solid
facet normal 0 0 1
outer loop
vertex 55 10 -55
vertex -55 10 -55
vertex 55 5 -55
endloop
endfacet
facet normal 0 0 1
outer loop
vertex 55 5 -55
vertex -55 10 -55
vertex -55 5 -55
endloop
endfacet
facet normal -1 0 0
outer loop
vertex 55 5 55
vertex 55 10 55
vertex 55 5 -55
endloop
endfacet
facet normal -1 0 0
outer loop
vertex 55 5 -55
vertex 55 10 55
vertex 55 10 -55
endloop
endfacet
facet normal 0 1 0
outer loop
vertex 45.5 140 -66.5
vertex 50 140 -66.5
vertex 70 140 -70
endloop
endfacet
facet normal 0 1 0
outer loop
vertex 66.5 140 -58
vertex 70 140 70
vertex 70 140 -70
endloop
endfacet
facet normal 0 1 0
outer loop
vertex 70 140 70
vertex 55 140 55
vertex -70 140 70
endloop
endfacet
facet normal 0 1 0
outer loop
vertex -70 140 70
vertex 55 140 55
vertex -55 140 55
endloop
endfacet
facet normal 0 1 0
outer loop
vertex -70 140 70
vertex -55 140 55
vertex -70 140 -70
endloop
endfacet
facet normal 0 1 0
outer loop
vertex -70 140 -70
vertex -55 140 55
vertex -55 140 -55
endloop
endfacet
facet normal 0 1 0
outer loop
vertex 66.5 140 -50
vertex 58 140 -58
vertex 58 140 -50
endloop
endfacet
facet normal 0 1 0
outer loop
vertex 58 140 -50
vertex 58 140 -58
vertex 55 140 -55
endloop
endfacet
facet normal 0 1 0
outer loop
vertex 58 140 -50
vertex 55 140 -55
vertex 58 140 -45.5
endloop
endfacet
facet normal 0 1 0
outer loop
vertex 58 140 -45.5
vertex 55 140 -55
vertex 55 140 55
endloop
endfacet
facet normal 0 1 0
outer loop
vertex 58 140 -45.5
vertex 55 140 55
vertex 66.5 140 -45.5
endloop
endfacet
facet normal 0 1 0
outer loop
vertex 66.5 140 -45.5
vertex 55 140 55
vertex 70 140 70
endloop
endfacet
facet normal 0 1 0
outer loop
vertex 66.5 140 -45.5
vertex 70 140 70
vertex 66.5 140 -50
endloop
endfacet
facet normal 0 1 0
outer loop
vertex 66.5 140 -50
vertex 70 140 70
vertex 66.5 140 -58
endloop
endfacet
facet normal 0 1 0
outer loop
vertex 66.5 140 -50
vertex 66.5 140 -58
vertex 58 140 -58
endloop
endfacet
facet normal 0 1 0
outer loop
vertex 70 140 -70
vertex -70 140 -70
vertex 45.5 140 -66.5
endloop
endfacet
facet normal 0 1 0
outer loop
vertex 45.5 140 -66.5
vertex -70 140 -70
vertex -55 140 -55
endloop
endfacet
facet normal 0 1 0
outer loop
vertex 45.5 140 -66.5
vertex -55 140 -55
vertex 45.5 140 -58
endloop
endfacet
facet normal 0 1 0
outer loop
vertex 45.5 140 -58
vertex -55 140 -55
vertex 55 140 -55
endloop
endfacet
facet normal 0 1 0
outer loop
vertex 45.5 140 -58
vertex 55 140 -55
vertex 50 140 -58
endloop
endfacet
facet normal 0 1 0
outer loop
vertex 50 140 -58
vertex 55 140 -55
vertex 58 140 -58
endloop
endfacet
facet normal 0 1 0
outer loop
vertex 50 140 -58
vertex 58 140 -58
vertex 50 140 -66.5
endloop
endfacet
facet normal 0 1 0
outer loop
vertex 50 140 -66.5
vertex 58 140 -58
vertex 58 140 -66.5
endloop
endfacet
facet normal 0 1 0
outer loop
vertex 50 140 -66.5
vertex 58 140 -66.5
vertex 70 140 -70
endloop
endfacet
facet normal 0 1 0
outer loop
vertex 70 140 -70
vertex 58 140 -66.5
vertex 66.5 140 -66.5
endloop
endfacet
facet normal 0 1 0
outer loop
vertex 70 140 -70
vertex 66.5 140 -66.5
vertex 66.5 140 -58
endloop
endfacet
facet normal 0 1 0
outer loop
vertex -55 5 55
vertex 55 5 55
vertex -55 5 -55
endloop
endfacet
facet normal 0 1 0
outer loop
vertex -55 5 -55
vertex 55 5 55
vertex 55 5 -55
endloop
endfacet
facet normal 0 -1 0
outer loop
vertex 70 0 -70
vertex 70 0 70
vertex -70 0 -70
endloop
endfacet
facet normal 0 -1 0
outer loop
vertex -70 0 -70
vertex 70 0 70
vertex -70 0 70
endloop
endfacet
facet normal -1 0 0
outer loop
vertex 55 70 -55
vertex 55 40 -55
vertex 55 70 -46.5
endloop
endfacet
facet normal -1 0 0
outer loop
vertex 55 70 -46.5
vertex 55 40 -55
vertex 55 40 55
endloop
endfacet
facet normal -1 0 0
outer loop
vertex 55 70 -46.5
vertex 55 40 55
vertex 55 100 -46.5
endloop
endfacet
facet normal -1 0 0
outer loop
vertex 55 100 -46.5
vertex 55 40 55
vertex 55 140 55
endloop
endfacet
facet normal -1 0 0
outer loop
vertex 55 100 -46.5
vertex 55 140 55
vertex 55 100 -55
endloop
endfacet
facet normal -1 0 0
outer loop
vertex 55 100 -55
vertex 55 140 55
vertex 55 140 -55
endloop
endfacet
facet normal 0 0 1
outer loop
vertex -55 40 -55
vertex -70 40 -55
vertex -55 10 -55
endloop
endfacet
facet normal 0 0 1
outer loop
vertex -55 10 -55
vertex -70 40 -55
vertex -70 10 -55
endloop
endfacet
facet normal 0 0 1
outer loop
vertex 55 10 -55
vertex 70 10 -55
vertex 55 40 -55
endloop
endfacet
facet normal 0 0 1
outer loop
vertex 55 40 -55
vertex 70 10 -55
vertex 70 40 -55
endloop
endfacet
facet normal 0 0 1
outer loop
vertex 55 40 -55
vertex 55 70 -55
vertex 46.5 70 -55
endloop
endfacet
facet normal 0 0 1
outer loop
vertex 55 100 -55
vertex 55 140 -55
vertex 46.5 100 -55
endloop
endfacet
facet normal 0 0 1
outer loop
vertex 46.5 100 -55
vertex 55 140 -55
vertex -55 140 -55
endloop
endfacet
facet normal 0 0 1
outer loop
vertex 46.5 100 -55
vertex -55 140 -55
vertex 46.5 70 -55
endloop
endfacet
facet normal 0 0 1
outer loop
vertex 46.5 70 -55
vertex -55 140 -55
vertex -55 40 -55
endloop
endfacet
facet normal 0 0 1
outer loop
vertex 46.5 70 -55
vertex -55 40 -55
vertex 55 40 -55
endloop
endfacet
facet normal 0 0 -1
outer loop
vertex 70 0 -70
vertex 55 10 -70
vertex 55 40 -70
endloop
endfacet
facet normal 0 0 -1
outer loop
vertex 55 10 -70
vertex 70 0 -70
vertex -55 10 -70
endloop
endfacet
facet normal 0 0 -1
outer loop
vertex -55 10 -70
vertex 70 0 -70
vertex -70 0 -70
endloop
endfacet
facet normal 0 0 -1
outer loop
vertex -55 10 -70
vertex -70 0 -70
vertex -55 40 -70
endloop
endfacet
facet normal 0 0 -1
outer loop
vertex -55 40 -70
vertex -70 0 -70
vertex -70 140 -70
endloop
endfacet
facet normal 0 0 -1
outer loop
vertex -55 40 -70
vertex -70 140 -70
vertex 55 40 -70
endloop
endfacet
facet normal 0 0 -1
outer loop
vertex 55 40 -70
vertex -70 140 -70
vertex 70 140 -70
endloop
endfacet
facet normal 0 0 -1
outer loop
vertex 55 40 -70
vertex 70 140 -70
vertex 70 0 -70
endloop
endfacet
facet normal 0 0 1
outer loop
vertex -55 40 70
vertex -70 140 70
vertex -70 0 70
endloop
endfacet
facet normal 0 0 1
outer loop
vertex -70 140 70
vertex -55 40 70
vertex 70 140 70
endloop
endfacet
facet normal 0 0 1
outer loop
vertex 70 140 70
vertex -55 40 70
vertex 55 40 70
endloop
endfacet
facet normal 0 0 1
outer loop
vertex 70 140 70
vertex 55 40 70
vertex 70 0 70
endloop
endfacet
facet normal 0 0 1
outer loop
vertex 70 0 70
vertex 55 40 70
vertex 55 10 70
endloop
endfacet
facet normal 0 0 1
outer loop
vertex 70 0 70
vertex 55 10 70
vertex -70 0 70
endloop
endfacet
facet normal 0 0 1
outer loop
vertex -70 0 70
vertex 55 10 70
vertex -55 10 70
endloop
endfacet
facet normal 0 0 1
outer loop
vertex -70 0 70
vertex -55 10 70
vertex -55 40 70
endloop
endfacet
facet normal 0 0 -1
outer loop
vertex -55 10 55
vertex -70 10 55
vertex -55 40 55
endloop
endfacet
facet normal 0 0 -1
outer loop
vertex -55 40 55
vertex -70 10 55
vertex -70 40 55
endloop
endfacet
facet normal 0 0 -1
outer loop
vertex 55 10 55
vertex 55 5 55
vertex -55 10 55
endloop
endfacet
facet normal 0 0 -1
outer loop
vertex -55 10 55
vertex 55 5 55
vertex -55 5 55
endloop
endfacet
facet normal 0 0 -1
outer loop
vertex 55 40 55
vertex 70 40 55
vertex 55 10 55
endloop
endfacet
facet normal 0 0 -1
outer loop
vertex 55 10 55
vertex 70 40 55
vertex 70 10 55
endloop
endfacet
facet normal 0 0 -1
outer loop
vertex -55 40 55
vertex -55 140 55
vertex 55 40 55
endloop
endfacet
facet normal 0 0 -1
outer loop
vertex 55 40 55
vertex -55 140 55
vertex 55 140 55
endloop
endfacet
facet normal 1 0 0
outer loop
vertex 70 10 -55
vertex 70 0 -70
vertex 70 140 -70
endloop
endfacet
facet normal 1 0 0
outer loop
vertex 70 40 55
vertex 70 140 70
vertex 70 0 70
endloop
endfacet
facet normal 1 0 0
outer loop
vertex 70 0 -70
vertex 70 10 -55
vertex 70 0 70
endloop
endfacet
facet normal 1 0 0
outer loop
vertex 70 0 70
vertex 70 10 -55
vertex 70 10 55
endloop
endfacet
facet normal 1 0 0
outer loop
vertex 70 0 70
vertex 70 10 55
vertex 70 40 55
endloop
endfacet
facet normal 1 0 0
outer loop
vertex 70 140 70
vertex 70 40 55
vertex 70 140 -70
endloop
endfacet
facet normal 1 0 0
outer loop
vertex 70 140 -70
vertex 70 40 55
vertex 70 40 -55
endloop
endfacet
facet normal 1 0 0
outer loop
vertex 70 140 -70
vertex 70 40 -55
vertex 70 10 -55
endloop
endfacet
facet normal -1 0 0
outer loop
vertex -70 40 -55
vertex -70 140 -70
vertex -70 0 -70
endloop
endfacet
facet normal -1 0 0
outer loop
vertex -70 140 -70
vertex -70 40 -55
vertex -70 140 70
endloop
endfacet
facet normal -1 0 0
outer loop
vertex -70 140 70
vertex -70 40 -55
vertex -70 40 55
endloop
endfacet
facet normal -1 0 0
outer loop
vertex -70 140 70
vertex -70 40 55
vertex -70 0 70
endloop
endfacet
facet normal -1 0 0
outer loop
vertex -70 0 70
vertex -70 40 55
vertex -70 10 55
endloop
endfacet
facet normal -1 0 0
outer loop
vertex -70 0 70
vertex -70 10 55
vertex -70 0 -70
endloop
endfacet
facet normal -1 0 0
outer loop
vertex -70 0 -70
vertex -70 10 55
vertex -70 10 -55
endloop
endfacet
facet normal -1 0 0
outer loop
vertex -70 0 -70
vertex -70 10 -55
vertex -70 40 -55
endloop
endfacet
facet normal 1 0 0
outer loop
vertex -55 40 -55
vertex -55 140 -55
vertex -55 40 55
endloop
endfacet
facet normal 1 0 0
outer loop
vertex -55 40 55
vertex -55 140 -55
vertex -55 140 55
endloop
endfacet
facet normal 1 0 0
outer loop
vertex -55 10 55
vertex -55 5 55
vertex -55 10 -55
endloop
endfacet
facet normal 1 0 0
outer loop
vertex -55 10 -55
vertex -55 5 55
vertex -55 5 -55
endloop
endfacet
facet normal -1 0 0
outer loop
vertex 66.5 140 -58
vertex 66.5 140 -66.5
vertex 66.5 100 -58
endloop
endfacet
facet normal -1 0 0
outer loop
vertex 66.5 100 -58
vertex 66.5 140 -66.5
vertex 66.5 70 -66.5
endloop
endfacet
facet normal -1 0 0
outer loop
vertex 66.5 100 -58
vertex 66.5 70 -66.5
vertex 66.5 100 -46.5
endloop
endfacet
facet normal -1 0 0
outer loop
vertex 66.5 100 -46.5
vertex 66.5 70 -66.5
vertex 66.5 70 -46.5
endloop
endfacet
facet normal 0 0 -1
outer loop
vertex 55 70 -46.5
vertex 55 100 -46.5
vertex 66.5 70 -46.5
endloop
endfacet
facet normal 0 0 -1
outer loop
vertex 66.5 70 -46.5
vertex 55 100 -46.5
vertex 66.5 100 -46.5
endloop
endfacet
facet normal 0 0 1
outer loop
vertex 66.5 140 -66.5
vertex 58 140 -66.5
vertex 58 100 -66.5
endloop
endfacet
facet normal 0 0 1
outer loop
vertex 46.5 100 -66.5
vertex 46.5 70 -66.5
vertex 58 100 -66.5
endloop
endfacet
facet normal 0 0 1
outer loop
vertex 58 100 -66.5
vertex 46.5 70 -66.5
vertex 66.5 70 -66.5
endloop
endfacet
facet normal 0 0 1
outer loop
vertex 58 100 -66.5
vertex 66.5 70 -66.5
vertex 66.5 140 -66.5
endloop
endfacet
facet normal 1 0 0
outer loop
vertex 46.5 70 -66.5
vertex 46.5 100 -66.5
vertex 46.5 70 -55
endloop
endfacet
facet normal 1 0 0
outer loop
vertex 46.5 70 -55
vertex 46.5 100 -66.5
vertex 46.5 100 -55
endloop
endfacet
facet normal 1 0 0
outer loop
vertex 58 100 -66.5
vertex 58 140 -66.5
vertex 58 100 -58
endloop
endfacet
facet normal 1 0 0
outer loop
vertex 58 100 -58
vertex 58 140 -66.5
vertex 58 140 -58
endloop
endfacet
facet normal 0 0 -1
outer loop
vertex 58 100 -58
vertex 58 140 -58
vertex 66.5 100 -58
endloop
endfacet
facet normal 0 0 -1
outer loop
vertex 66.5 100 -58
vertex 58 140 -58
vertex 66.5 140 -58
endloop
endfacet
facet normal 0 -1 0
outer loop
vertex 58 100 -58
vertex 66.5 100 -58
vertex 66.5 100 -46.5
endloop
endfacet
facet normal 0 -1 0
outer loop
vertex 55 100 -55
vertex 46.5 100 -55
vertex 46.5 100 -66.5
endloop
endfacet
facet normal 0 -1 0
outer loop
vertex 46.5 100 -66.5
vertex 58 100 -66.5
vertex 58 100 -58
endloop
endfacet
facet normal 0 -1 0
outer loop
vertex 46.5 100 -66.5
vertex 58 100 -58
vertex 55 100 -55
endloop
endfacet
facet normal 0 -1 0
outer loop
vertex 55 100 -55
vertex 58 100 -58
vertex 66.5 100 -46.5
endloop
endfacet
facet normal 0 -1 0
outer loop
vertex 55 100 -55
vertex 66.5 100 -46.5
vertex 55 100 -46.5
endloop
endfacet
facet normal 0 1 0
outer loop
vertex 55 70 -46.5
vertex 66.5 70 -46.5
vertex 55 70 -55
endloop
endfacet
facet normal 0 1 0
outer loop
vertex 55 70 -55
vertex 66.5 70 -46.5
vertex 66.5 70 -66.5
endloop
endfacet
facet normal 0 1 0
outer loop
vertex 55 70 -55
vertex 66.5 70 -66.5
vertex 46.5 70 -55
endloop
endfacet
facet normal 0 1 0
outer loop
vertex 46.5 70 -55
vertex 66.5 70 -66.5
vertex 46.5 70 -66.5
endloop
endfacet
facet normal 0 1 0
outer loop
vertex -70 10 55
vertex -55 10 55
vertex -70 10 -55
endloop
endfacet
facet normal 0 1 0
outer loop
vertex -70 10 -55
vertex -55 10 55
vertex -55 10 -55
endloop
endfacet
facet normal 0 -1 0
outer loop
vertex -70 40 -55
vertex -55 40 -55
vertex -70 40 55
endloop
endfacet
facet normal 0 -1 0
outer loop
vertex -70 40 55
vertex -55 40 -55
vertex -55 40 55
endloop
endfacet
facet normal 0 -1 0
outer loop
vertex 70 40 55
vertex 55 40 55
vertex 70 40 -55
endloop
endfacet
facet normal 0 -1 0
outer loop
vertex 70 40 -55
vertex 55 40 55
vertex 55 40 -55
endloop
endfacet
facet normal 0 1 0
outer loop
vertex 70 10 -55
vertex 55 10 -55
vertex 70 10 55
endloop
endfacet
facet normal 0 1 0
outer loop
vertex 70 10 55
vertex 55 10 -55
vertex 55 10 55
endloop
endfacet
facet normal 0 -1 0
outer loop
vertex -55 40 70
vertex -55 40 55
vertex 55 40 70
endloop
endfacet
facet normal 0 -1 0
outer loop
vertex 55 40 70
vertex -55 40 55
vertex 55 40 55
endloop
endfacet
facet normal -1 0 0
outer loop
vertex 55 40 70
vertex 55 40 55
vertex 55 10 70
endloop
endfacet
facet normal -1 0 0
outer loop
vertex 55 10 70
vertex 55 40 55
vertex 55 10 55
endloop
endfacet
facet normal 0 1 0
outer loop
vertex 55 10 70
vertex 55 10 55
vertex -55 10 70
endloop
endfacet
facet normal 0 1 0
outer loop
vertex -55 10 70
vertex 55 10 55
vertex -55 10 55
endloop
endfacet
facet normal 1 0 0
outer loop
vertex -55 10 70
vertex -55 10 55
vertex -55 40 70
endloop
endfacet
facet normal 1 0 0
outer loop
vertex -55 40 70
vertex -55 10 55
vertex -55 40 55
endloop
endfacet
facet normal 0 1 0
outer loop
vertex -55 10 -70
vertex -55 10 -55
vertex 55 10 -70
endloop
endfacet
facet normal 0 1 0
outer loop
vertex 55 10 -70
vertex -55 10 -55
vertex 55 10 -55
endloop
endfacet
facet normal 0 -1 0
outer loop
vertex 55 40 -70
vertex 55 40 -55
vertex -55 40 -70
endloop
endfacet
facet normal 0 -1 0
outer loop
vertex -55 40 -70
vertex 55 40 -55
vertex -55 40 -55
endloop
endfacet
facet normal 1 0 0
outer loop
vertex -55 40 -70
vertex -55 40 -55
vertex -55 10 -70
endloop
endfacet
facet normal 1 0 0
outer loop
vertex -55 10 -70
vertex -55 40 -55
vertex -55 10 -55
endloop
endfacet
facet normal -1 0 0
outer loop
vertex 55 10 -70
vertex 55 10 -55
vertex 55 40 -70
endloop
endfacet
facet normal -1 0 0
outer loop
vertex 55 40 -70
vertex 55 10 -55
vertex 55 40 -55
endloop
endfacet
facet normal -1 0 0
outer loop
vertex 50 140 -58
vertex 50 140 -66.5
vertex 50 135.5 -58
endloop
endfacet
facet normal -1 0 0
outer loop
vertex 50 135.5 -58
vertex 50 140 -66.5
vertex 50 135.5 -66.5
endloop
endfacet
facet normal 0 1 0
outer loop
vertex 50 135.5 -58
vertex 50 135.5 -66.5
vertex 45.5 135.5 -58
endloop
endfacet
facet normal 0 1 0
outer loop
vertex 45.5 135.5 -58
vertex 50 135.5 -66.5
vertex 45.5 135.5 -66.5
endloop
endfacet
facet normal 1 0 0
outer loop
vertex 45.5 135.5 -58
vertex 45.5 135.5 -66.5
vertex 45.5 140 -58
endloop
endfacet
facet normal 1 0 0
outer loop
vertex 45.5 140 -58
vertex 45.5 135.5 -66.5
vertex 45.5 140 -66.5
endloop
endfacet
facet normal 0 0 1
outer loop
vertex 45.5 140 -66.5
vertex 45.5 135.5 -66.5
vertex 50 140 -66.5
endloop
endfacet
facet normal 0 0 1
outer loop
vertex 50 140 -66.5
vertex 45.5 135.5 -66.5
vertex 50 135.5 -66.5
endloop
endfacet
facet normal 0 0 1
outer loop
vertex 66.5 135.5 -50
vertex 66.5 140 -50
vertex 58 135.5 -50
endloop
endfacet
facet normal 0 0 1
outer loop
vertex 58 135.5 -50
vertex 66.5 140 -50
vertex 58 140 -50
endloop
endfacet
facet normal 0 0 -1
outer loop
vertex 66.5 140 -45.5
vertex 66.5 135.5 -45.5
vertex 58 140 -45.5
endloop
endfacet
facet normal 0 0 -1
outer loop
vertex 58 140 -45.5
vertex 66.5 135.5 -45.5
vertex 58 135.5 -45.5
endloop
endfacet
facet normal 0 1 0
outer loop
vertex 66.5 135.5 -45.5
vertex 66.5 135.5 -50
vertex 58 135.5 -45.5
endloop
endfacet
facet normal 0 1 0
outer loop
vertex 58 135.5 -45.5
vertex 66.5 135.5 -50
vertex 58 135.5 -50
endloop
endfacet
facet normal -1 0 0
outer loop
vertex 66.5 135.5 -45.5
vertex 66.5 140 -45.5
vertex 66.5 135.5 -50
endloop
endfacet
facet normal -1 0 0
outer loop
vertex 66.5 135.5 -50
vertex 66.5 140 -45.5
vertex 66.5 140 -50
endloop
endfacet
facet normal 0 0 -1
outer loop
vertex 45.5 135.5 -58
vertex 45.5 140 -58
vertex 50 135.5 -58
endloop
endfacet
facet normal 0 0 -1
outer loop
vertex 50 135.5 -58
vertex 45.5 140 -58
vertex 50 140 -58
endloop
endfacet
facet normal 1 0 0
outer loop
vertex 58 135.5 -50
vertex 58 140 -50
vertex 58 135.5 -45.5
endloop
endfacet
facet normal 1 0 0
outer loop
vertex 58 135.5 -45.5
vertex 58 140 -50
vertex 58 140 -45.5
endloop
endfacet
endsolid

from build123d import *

# Parameters (mm, degrees)
SKETCH1_W               = 140
SKETCH1_H               = 140
BOSS_EXTRUDE1_DEPTH     = 140
SKETCH3_W               = 110
SKETCH3_H               = 110
CUT_EXTRUDE1_DEPTH      = 140
SKETCH4_W               = 140
SKETCH4_H               = 140
BOSS_EXTRUDE2_DEPTH     = 5
SKETCH8_W               = 8.5
SKETCH8_H               = 8.5
CUT_EXTRUDE4_DEPTH      = 140
SKETCH10_W              = 20
SKETCH10_H              = 20
CUT_EXTRUDE5_DEPTH      = 100
SKETCH12_W              = 28.647962974
SKETCH12_H              = 28.734113052
BOSS_EXTRUDE4_DEPTH     = 5
SKETCH18_W              = 23.5
SKETCH18_H              = 15
BOSS_EXTRUDE6_DEPTH     = 70
SKETCH19_W              = 15
SKETCH19_H              = 26.494211046
BOSS_EXTRUDE7_DEPTH     = 70
SKETCH24_W              = 110
SKETCH24_H              = 30
CUT_EXTRUDE8_DEPTH      = 70
CUT_EXTRUDE8_DEPTH_BACK = 70
SKETCH25_W              = 110
SKETCH25_H              = 30
CUT_EXTRUDE9_DEPTH      = 70
CUT_EXTRUDE9_DEPTH_BACK = 70
SKETCH28_W              = 4.5
SKETCH28_H              = 4.5
CUT_EXTRUDE10_DEPTH     = 66.5
SKETCH29_W              = 4.5
SKETCH29_H              = 4.5
CUT_EXTRUDE11_DEPTH     = 66.5
SKETCH30_W              = 4.5
SKETCH30_H              = 4.5
BOSS_EXTRUDE8_DEPTH     = 58
SKETCH32_W              = 4.5
SKETCH32_H              = 4.5
BOSS_EXTRUDE9_DEPTH     = 58
SKETCH34_W              = 58.042814696
SKETCH34_H              = 55
CUT_EXTRUDE20_DEPTH     = 140
SKETCH35_W              = 65.730984893
SKETCH35_H              = 63.694250149
BOSS_EXTRUDE10_DEPTH    = 5


with BuildPart() as part:
    # Sketch1 → Boss-Extrude1 (new body)
    with BuildSketch(Plane(origin=(0, 0, 0), x_dir=(1, 0, 0), z_dir=(0, 1, 0))):
        Rectangle(SKETCH1_W, SKETCH1_H)
    extrude(amount=BOSS_EXTRUDE1_DEPTH)

    # Sketch3 → Cut-Extrude1 (cut)
    with BuildSketch(Plane(origin=(0, 0, 0), x_dir=(1, 0, 0), z_dir=(0, 1, 0))):
        Rectangle(SKETCH3_W, SKETCH3_H)
    extrude(amount=CUT_EXTRUDE1_DEPTH, mode=Mode.SUBTRACT)

    # Sketch4 → Boss-Extrude2 (add)
    with BuildSketch(Plane(origin=(0, 0, 0), x_dir=(1, 0, 0), z_dir=(0, 1, 0))):
        Rectangle(SKETCH4_W, SKETCH4_H)
    extrude(amount=BOSS_EXTRUDE2_DEPTH)

    # Sketch8 → Cut-Extrude4 (cut)
    with BuildSketch(Plane(origin=(0, 0, 0), x_dir=(1, 0, 0), z_dir=(0, 1, 0))):
        with Locations((62.25, 62.25)):
            Rectangle(SKETCH8_W, SKETCH8_H)
    extrude(amount=CUT_EXTRUDE4_DEPTH, mode=Mode.SUBTRACT)

    # Sketch10 → Cut-Extrude5 (cut)
    with BuildSketch(Plane(origin=(0, 0, 0), x_dir=(1, 0, 0), z_dir=(0, 1, 0))):
        with Locations((56.5, 56.5)):
            Rectangle(SKETCH10_W, SKETCH10_H)
    extrude(amount=CUT_EXTRUDE5_DEPTH, mode=Mode.SUBTRACT)

    # Sketch12 → Boss-Extrude4 (add)
    with BuildSketch(Plane(origin=(0, 0, 0), x_dir=(1, 0, 0), z_dir=(0, 1, 0))):
        with Locations((55.676018513, 55.632943474)):
            Rectangle(SKETCH12_W, SKETCH12_H)
    extrude(amount=BOSS_EXTRUDE4_DEPTH)

    # Sketch18 → Boss-Extrude6 (add)
    with BuildSketch(Plane(origin=(0, 0, 0), x_dir=(1, 0, 0), z_dir=(0, 1, 0))):
        with Locations((58.25, 62.5)):
            Rectangle(SKETCH18_W, SKETCH18_H)
    extrude(amount=BOSS_EXTRUDE6_DEPTH)

    # Sketch19 → Boss-Extrude7 (add)
    with BuildSketch(Plane(origin=(0, 0, 0), x_dir=(1, 0, 0), z_dir=(0, 1, 0))):
        with Locations((62.5, 56.752894477)):
            Rectangle(SKETCH19_W, SKETCH19_H)
    extrude(amount=BOSS_EXTRUDE7_DEPTH)

    # Sketch24 → Cut-Extrude8 (cut, two sides)
    with BuildSketch(Plane(origin=(0, 0, 0), x_dir=(0, 0, -1), z_dir=(1, 0, 0))) as cut_extrude8_sk:
        with Locations((0, 25)):
            Rectangle(SKETCH24_W, SKETCH24_H)
    extrude(amount=CUT_EXTRUDE8_DEPTH, mode=Mode.SUBTRACT)
    extrude(cut_extrude8_sk.sketch, amount=-CUT_EXTRUDE8_DEPTH_BACK, mode=Mode.SUBTRACT)

    # Sketch25 → Cut-Extrude9 (cut, two sides)
    with BuildSketch(Plane.XY) as cut_extrude9_sk:
        with Locations((0, 25)):
            Rectangle(SKETCH25_W, SKETCH25_H)
    extrude(amount=CUT_EXTRUDE9_DEPTH, mode=Mode.SUBTRACT)
    extrude(cut_extrude9_sk.sketch, amount=-CUT_EXTRUDE9_DEPTH_BACK, mode=Mode.SUBTRACT)

    # Sketch28 → Cut-Extrude10 (cut)
    with BuildSketch(Plane.XY):
        with Locations((47.75, 137.75)):
            Rectangle(SKETCH28_W, SKETCH28_H)
    extrude(amount=-CUT_EXTRUDE10_DEPTH, mode=Mode.SUBTRACT)

    # Sketch29 → Cut-Extrude11 (cut)
    with BuildSketch(Plane(origin=(0, 0, 0), x_dir=(0, 0, -1), z_dir=(1, 0, 0))):
        with Locations((47.75, 137.75)):
            Rectangle(SKETCH29_W, SKETCH29_H)
    extrude(amount=CUT_EXTRUDE11_DEPTH, mode=Mode.SUBTRACT)

    # Sketch30 → Boss-Extrude8 (add)
    with BuildSketch(Plane.XY):
        with Locations((47.75, 137.75)):
            Rectangle(SKETCH30_W, SKETCH30_H)
    extrude(amount=-BOSS_EXTRUDE8_DEPTH)

    # Sketch32 → Boss-Extrude9 (add)
    with BuildSketch(Plane(origin=(0, 0, 0), x_dir=(0, 0, -1), z_dir=(1, 0, 0))):
        with Locations((47.75, 137.75)):
            Rectangle(SKETCH32_W, SKETCH32_H)
    extrude(amount=BOSS_EXTRUDE9_DEPTH)

    # Sketch34 → Cut-Extrude20 (cut)
    with BuildSketch(Plane(origin=(0, 0, 0), x_dir=(1, 0, 0), z_dir=(0, 1, 0))):
        with Locations((25.978592652, 27.5)):
            Rectangle(SKETCH34_W, SKETCH34_H)
    extrude(amount=CUT_EXTRUDE20_DEPTH, mode=Mode.SUBTRACT)

    # Sketch35 → Boss-Extrude10 (add)
    with BuildSketch(Plane(origin=(0, 0, 0), x_dir=(1, 0, 0), z_dir=(0, 1, 0))):
        with Locations((27.4156276, 28.86339265)):
            Rectangle(SKETCH35_W, SKETCH35_H)
    extrude(amount=BOSS_EXTRUDE10_DEPTH)


solid = part.part
